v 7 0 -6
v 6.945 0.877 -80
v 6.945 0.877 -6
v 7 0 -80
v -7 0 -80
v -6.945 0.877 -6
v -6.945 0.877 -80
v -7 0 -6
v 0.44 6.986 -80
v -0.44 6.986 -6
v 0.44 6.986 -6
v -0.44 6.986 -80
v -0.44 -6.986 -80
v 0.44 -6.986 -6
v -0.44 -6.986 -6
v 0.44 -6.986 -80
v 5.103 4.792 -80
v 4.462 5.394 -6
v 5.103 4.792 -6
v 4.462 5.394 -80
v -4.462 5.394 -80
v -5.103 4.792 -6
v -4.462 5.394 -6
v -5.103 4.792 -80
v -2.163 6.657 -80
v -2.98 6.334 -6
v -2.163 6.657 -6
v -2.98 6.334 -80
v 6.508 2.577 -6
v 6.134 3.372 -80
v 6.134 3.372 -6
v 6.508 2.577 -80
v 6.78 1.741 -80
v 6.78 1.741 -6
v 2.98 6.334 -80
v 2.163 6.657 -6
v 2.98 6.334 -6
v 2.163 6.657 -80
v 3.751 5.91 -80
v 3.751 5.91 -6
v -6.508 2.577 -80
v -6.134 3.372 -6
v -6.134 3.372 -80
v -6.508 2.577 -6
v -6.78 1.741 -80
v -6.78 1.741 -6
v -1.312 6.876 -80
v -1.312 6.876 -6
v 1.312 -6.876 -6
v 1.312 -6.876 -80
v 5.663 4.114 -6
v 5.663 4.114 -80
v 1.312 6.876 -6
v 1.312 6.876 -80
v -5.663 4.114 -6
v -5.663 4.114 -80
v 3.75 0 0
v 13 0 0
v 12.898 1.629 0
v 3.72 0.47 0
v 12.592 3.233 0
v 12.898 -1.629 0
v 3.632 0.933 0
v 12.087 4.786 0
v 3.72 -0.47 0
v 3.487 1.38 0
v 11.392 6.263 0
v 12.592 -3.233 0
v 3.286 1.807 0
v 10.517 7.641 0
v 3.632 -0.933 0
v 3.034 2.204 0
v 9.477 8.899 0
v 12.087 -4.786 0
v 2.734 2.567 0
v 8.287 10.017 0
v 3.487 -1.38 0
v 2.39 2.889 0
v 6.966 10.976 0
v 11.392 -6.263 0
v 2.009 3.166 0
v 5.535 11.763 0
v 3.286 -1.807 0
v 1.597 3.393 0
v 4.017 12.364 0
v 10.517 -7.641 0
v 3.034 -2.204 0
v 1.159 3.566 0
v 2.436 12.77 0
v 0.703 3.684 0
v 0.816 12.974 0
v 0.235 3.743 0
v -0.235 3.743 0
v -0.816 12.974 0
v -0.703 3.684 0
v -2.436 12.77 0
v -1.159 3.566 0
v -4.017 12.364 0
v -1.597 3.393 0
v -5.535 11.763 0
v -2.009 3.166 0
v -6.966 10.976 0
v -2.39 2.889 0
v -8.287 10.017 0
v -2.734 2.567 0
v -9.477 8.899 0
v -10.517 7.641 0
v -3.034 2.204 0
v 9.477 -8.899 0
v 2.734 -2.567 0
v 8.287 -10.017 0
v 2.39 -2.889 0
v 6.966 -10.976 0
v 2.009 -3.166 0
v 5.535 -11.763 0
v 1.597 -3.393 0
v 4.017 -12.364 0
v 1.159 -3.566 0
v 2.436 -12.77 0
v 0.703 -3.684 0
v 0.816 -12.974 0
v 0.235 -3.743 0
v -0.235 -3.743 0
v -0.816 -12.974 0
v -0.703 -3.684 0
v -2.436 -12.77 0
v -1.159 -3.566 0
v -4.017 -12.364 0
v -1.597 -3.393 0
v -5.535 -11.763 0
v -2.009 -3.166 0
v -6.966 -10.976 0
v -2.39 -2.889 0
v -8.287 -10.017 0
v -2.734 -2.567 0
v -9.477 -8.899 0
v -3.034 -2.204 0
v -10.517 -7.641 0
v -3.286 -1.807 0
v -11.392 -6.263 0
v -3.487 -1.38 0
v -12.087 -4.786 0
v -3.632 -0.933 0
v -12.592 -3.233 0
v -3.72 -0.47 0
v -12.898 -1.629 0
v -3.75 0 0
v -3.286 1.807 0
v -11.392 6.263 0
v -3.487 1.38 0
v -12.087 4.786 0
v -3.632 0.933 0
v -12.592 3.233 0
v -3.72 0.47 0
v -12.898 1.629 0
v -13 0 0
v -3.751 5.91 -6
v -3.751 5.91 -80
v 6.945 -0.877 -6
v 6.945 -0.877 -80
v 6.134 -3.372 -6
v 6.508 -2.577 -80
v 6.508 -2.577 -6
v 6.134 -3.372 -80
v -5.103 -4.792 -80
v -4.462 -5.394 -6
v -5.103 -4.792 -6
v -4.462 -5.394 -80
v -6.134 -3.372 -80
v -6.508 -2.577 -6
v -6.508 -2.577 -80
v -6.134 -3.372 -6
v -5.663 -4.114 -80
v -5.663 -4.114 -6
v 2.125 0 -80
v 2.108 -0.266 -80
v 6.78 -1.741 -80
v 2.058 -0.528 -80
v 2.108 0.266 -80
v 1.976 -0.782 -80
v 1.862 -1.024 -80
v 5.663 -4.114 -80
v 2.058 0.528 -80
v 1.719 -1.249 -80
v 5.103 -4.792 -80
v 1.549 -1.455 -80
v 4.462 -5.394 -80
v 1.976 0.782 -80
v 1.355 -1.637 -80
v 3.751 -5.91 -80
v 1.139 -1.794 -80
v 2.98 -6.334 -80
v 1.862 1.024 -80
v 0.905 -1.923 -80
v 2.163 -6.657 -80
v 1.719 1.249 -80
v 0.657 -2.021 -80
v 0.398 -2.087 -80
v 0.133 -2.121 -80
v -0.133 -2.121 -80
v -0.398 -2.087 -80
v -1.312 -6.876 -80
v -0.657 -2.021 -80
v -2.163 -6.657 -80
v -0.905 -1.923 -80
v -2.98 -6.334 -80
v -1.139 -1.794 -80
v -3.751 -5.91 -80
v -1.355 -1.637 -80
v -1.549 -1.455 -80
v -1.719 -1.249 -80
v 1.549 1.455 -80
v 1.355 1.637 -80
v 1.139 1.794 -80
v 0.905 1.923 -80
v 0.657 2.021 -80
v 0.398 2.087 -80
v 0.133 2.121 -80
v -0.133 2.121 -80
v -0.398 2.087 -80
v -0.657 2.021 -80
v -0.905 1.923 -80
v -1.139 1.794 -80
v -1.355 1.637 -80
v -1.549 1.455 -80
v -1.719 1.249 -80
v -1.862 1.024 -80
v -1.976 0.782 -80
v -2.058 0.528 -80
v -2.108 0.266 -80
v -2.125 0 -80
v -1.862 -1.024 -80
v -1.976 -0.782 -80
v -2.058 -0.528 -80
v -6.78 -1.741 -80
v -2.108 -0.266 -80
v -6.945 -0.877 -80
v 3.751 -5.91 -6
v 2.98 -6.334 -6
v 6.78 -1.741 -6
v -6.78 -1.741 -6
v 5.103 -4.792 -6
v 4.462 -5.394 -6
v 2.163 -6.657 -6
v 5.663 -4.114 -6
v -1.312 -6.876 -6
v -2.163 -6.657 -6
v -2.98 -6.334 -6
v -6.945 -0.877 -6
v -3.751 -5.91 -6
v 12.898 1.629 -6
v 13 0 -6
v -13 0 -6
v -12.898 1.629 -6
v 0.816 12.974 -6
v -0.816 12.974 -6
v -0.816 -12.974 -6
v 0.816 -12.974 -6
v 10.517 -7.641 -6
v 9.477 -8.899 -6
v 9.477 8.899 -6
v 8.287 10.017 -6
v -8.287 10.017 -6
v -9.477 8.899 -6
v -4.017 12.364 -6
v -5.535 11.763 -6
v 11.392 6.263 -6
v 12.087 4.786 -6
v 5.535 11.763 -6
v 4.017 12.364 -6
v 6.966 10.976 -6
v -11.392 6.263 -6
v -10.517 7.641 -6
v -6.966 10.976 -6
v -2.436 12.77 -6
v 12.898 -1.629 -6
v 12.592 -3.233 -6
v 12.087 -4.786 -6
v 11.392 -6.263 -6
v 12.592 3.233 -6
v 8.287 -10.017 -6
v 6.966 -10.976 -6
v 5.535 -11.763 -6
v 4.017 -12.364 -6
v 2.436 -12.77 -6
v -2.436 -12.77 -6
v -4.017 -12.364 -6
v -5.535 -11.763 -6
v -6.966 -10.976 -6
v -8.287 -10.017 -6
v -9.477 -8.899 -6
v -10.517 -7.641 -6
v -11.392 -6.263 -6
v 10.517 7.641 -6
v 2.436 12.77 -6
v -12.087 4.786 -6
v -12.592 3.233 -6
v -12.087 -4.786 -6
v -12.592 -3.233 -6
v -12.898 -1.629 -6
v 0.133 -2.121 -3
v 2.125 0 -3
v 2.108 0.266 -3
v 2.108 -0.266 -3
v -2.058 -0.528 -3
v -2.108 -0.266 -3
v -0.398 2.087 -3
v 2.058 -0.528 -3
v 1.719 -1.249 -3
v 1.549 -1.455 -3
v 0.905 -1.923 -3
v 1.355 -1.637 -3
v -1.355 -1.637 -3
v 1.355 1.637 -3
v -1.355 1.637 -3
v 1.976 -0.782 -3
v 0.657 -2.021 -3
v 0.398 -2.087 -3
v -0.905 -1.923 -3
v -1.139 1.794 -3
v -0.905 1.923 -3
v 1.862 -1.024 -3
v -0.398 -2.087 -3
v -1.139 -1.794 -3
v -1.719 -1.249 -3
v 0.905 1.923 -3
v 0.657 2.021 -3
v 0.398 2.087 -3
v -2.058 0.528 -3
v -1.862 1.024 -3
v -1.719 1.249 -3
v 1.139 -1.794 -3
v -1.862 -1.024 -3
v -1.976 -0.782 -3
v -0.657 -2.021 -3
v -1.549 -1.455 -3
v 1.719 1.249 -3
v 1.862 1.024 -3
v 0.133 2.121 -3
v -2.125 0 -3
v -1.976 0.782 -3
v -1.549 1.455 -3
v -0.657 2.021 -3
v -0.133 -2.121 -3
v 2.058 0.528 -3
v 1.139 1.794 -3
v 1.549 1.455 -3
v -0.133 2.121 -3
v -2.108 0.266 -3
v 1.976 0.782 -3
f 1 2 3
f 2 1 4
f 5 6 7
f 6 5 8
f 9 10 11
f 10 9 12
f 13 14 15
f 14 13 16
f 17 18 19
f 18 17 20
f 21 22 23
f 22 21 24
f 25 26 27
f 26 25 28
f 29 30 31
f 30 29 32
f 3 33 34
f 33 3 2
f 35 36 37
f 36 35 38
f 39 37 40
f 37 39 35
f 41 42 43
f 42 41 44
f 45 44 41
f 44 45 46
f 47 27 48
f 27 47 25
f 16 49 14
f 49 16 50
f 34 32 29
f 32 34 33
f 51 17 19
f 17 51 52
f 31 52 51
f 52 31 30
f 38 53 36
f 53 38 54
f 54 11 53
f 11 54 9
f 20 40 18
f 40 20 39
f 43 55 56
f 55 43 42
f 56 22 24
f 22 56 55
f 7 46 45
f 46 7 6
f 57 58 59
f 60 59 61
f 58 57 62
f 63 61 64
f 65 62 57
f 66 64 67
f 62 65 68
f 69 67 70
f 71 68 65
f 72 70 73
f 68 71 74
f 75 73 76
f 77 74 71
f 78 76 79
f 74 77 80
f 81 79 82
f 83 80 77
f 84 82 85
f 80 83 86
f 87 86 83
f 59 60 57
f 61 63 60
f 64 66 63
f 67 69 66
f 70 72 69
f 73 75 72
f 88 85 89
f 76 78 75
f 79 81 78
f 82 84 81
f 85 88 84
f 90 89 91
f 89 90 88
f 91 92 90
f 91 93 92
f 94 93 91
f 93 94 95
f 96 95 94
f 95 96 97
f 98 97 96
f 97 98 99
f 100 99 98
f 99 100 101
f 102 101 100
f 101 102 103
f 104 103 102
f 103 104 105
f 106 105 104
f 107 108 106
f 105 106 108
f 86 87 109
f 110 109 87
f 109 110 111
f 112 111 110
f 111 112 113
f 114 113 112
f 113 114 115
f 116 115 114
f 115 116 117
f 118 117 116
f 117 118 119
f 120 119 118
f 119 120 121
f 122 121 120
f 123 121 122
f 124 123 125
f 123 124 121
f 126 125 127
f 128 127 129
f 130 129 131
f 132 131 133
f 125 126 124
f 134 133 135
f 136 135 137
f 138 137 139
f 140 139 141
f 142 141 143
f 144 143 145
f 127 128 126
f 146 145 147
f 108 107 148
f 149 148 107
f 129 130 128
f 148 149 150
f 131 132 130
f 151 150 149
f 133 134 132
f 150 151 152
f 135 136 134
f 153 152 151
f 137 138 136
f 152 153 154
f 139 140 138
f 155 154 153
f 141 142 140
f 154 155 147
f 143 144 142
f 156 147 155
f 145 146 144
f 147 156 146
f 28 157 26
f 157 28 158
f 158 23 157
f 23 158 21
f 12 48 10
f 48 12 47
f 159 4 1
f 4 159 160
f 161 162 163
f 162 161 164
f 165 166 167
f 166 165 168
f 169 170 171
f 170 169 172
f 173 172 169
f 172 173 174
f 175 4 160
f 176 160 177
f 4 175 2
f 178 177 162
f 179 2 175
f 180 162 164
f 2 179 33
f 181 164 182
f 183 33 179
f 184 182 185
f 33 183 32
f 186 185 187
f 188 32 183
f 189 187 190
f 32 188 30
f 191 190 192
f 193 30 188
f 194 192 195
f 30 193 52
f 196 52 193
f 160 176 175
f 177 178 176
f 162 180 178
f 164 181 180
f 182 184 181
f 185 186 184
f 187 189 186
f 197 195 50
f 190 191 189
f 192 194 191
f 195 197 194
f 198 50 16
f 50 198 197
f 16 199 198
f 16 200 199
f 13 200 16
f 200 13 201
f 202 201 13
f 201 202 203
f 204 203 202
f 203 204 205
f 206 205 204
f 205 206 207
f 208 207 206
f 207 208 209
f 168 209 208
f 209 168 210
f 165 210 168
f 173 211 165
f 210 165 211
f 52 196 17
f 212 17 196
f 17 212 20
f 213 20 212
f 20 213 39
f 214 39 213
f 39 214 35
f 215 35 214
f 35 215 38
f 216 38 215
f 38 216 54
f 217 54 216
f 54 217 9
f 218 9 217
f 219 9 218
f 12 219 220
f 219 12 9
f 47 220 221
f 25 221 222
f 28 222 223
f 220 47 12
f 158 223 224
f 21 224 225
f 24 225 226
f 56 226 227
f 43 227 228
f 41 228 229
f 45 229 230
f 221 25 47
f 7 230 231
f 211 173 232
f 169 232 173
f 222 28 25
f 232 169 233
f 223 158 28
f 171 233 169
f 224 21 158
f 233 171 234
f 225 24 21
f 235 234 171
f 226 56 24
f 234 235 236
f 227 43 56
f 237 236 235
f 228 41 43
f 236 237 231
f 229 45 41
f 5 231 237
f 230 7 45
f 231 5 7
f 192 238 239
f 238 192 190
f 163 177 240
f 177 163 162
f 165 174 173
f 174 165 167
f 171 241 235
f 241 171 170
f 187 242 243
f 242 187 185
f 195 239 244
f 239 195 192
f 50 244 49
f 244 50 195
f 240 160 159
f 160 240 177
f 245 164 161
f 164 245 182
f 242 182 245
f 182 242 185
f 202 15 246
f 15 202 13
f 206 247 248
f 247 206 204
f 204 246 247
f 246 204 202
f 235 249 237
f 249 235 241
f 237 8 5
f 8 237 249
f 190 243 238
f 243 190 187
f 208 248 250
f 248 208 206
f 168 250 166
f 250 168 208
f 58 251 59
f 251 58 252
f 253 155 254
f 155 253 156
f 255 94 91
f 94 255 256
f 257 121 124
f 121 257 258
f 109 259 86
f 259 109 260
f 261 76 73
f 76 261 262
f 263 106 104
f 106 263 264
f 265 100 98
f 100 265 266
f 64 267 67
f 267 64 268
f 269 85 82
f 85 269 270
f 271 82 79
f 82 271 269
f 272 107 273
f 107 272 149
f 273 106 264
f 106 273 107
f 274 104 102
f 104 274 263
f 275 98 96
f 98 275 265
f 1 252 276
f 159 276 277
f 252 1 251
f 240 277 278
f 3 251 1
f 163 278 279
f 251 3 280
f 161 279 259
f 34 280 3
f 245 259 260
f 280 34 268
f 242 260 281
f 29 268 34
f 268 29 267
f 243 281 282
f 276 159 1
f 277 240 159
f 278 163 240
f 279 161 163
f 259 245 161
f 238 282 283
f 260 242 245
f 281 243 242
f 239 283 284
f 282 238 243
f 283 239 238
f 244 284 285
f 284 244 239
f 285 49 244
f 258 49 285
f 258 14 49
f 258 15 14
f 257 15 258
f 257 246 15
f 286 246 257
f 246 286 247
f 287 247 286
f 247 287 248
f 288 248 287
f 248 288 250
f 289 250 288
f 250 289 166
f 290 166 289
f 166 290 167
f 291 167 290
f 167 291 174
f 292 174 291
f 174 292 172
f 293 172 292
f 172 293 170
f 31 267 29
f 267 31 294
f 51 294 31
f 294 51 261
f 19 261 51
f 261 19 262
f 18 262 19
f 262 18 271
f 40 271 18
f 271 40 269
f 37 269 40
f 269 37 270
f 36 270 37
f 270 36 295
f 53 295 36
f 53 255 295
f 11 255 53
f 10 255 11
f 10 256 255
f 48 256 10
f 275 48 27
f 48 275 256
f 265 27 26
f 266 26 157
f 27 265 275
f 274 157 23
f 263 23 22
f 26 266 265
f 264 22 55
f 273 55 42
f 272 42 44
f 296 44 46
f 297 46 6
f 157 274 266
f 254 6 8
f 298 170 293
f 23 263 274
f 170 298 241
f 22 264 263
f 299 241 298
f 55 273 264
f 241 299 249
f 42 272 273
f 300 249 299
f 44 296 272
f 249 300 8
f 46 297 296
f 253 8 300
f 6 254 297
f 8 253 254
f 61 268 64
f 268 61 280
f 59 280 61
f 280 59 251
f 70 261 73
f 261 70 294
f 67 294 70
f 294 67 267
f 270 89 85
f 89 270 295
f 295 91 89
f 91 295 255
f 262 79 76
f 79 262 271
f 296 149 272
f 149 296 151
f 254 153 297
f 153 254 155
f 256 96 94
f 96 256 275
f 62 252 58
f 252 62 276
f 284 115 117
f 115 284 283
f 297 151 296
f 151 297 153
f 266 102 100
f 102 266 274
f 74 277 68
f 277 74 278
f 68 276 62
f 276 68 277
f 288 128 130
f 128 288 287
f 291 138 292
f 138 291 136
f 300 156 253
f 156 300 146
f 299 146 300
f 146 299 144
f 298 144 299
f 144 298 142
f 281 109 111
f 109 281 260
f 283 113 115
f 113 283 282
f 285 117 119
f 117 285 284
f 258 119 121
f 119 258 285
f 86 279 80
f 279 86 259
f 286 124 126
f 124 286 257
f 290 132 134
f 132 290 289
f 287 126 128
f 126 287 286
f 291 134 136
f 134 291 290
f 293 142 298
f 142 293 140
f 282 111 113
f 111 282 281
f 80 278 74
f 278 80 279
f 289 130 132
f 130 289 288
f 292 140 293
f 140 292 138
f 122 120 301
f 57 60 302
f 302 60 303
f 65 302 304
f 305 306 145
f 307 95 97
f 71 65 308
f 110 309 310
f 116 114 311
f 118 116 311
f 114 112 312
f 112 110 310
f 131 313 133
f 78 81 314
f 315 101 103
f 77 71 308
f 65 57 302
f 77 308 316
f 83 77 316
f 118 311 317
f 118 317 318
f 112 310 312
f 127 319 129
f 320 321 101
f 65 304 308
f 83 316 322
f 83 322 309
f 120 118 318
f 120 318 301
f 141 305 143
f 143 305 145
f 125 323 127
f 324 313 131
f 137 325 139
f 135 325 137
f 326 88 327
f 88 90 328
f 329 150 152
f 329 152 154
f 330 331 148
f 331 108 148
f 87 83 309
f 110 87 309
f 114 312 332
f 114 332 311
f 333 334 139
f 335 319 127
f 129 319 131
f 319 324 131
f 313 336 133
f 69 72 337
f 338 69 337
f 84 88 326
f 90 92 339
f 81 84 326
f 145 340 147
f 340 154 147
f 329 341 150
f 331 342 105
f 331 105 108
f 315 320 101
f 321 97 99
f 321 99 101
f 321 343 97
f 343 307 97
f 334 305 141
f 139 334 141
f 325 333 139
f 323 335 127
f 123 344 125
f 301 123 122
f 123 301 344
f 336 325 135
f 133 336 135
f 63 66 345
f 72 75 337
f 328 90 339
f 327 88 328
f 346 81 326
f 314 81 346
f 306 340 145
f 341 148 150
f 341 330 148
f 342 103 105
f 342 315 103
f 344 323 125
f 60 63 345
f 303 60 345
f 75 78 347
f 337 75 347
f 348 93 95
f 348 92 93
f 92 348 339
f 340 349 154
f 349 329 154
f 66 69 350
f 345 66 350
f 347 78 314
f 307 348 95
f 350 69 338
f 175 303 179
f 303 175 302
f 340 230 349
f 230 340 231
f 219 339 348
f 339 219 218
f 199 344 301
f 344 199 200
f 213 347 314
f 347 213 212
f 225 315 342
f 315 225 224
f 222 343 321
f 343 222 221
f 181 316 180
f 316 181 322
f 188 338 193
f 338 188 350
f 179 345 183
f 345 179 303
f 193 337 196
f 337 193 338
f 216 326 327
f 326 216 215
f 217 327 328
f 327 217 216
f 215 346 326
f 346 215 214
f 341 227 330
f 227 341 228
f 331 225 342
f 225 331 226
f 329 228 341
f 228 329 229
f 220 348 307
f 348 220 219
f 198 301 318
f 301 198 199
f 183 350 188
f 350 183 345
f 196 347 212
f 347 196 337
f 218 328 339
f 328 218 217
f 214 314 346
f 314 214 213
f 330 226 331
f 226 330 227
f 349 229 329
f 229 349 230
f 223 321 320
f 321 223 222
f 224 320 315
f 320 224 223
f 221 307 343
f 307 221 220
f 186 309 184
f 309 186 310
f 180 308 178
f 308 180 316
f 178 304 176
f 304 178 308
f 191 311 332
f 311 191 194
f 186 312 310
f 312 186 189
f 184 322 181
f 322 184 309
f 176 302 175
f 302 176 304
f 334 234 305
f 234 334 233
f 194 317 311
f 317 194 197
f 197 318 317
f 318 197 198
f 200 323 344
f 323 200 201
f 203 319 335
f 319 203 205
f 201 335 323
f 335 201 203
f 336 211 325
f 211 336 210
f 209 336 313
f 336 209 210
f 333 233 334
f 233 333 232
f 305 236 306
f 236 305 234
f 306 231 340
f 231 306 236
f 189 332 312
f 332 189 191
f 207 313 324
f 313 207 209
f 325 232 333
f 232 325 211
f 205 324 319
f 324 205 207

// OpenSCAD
$fn = 50;


difference() {
	union() {
		translate(v = [0, 0, -80.0000000000]) {
			cylinder(h = 80, r = 7.0000000000);
		}
		translate(v = [0, 0, -6.0000000000]) {
			cylinder(h = 6, r = 13.0000000000);
		}
	}
	union() {
		translate(v = [0, 0, 0]) {
			rotate(a = [0, 0, 0]) {
				difference() {
					union() {
						#translate(v = [0, 0, -80.0000000000]) {
							cylinder(h = 80, r = 2.0000000000);
						}
						#translate(v = [0, 0, -3]) {
							cylinder(h = 3, r1 = 2.1250000000, r2 = 3.7500000000);
						}
						#translate(v = [0, 0, -80.0000000000]) {
							cylinder(h = 80, r = 2.1250000000);
						}
						#translate(v = [0, 0, -80.0000000000]) {
							cylinder(h = 80, r = 2.0000000000);
						}
					}
					union();
				}
			}
		}
	}
}
